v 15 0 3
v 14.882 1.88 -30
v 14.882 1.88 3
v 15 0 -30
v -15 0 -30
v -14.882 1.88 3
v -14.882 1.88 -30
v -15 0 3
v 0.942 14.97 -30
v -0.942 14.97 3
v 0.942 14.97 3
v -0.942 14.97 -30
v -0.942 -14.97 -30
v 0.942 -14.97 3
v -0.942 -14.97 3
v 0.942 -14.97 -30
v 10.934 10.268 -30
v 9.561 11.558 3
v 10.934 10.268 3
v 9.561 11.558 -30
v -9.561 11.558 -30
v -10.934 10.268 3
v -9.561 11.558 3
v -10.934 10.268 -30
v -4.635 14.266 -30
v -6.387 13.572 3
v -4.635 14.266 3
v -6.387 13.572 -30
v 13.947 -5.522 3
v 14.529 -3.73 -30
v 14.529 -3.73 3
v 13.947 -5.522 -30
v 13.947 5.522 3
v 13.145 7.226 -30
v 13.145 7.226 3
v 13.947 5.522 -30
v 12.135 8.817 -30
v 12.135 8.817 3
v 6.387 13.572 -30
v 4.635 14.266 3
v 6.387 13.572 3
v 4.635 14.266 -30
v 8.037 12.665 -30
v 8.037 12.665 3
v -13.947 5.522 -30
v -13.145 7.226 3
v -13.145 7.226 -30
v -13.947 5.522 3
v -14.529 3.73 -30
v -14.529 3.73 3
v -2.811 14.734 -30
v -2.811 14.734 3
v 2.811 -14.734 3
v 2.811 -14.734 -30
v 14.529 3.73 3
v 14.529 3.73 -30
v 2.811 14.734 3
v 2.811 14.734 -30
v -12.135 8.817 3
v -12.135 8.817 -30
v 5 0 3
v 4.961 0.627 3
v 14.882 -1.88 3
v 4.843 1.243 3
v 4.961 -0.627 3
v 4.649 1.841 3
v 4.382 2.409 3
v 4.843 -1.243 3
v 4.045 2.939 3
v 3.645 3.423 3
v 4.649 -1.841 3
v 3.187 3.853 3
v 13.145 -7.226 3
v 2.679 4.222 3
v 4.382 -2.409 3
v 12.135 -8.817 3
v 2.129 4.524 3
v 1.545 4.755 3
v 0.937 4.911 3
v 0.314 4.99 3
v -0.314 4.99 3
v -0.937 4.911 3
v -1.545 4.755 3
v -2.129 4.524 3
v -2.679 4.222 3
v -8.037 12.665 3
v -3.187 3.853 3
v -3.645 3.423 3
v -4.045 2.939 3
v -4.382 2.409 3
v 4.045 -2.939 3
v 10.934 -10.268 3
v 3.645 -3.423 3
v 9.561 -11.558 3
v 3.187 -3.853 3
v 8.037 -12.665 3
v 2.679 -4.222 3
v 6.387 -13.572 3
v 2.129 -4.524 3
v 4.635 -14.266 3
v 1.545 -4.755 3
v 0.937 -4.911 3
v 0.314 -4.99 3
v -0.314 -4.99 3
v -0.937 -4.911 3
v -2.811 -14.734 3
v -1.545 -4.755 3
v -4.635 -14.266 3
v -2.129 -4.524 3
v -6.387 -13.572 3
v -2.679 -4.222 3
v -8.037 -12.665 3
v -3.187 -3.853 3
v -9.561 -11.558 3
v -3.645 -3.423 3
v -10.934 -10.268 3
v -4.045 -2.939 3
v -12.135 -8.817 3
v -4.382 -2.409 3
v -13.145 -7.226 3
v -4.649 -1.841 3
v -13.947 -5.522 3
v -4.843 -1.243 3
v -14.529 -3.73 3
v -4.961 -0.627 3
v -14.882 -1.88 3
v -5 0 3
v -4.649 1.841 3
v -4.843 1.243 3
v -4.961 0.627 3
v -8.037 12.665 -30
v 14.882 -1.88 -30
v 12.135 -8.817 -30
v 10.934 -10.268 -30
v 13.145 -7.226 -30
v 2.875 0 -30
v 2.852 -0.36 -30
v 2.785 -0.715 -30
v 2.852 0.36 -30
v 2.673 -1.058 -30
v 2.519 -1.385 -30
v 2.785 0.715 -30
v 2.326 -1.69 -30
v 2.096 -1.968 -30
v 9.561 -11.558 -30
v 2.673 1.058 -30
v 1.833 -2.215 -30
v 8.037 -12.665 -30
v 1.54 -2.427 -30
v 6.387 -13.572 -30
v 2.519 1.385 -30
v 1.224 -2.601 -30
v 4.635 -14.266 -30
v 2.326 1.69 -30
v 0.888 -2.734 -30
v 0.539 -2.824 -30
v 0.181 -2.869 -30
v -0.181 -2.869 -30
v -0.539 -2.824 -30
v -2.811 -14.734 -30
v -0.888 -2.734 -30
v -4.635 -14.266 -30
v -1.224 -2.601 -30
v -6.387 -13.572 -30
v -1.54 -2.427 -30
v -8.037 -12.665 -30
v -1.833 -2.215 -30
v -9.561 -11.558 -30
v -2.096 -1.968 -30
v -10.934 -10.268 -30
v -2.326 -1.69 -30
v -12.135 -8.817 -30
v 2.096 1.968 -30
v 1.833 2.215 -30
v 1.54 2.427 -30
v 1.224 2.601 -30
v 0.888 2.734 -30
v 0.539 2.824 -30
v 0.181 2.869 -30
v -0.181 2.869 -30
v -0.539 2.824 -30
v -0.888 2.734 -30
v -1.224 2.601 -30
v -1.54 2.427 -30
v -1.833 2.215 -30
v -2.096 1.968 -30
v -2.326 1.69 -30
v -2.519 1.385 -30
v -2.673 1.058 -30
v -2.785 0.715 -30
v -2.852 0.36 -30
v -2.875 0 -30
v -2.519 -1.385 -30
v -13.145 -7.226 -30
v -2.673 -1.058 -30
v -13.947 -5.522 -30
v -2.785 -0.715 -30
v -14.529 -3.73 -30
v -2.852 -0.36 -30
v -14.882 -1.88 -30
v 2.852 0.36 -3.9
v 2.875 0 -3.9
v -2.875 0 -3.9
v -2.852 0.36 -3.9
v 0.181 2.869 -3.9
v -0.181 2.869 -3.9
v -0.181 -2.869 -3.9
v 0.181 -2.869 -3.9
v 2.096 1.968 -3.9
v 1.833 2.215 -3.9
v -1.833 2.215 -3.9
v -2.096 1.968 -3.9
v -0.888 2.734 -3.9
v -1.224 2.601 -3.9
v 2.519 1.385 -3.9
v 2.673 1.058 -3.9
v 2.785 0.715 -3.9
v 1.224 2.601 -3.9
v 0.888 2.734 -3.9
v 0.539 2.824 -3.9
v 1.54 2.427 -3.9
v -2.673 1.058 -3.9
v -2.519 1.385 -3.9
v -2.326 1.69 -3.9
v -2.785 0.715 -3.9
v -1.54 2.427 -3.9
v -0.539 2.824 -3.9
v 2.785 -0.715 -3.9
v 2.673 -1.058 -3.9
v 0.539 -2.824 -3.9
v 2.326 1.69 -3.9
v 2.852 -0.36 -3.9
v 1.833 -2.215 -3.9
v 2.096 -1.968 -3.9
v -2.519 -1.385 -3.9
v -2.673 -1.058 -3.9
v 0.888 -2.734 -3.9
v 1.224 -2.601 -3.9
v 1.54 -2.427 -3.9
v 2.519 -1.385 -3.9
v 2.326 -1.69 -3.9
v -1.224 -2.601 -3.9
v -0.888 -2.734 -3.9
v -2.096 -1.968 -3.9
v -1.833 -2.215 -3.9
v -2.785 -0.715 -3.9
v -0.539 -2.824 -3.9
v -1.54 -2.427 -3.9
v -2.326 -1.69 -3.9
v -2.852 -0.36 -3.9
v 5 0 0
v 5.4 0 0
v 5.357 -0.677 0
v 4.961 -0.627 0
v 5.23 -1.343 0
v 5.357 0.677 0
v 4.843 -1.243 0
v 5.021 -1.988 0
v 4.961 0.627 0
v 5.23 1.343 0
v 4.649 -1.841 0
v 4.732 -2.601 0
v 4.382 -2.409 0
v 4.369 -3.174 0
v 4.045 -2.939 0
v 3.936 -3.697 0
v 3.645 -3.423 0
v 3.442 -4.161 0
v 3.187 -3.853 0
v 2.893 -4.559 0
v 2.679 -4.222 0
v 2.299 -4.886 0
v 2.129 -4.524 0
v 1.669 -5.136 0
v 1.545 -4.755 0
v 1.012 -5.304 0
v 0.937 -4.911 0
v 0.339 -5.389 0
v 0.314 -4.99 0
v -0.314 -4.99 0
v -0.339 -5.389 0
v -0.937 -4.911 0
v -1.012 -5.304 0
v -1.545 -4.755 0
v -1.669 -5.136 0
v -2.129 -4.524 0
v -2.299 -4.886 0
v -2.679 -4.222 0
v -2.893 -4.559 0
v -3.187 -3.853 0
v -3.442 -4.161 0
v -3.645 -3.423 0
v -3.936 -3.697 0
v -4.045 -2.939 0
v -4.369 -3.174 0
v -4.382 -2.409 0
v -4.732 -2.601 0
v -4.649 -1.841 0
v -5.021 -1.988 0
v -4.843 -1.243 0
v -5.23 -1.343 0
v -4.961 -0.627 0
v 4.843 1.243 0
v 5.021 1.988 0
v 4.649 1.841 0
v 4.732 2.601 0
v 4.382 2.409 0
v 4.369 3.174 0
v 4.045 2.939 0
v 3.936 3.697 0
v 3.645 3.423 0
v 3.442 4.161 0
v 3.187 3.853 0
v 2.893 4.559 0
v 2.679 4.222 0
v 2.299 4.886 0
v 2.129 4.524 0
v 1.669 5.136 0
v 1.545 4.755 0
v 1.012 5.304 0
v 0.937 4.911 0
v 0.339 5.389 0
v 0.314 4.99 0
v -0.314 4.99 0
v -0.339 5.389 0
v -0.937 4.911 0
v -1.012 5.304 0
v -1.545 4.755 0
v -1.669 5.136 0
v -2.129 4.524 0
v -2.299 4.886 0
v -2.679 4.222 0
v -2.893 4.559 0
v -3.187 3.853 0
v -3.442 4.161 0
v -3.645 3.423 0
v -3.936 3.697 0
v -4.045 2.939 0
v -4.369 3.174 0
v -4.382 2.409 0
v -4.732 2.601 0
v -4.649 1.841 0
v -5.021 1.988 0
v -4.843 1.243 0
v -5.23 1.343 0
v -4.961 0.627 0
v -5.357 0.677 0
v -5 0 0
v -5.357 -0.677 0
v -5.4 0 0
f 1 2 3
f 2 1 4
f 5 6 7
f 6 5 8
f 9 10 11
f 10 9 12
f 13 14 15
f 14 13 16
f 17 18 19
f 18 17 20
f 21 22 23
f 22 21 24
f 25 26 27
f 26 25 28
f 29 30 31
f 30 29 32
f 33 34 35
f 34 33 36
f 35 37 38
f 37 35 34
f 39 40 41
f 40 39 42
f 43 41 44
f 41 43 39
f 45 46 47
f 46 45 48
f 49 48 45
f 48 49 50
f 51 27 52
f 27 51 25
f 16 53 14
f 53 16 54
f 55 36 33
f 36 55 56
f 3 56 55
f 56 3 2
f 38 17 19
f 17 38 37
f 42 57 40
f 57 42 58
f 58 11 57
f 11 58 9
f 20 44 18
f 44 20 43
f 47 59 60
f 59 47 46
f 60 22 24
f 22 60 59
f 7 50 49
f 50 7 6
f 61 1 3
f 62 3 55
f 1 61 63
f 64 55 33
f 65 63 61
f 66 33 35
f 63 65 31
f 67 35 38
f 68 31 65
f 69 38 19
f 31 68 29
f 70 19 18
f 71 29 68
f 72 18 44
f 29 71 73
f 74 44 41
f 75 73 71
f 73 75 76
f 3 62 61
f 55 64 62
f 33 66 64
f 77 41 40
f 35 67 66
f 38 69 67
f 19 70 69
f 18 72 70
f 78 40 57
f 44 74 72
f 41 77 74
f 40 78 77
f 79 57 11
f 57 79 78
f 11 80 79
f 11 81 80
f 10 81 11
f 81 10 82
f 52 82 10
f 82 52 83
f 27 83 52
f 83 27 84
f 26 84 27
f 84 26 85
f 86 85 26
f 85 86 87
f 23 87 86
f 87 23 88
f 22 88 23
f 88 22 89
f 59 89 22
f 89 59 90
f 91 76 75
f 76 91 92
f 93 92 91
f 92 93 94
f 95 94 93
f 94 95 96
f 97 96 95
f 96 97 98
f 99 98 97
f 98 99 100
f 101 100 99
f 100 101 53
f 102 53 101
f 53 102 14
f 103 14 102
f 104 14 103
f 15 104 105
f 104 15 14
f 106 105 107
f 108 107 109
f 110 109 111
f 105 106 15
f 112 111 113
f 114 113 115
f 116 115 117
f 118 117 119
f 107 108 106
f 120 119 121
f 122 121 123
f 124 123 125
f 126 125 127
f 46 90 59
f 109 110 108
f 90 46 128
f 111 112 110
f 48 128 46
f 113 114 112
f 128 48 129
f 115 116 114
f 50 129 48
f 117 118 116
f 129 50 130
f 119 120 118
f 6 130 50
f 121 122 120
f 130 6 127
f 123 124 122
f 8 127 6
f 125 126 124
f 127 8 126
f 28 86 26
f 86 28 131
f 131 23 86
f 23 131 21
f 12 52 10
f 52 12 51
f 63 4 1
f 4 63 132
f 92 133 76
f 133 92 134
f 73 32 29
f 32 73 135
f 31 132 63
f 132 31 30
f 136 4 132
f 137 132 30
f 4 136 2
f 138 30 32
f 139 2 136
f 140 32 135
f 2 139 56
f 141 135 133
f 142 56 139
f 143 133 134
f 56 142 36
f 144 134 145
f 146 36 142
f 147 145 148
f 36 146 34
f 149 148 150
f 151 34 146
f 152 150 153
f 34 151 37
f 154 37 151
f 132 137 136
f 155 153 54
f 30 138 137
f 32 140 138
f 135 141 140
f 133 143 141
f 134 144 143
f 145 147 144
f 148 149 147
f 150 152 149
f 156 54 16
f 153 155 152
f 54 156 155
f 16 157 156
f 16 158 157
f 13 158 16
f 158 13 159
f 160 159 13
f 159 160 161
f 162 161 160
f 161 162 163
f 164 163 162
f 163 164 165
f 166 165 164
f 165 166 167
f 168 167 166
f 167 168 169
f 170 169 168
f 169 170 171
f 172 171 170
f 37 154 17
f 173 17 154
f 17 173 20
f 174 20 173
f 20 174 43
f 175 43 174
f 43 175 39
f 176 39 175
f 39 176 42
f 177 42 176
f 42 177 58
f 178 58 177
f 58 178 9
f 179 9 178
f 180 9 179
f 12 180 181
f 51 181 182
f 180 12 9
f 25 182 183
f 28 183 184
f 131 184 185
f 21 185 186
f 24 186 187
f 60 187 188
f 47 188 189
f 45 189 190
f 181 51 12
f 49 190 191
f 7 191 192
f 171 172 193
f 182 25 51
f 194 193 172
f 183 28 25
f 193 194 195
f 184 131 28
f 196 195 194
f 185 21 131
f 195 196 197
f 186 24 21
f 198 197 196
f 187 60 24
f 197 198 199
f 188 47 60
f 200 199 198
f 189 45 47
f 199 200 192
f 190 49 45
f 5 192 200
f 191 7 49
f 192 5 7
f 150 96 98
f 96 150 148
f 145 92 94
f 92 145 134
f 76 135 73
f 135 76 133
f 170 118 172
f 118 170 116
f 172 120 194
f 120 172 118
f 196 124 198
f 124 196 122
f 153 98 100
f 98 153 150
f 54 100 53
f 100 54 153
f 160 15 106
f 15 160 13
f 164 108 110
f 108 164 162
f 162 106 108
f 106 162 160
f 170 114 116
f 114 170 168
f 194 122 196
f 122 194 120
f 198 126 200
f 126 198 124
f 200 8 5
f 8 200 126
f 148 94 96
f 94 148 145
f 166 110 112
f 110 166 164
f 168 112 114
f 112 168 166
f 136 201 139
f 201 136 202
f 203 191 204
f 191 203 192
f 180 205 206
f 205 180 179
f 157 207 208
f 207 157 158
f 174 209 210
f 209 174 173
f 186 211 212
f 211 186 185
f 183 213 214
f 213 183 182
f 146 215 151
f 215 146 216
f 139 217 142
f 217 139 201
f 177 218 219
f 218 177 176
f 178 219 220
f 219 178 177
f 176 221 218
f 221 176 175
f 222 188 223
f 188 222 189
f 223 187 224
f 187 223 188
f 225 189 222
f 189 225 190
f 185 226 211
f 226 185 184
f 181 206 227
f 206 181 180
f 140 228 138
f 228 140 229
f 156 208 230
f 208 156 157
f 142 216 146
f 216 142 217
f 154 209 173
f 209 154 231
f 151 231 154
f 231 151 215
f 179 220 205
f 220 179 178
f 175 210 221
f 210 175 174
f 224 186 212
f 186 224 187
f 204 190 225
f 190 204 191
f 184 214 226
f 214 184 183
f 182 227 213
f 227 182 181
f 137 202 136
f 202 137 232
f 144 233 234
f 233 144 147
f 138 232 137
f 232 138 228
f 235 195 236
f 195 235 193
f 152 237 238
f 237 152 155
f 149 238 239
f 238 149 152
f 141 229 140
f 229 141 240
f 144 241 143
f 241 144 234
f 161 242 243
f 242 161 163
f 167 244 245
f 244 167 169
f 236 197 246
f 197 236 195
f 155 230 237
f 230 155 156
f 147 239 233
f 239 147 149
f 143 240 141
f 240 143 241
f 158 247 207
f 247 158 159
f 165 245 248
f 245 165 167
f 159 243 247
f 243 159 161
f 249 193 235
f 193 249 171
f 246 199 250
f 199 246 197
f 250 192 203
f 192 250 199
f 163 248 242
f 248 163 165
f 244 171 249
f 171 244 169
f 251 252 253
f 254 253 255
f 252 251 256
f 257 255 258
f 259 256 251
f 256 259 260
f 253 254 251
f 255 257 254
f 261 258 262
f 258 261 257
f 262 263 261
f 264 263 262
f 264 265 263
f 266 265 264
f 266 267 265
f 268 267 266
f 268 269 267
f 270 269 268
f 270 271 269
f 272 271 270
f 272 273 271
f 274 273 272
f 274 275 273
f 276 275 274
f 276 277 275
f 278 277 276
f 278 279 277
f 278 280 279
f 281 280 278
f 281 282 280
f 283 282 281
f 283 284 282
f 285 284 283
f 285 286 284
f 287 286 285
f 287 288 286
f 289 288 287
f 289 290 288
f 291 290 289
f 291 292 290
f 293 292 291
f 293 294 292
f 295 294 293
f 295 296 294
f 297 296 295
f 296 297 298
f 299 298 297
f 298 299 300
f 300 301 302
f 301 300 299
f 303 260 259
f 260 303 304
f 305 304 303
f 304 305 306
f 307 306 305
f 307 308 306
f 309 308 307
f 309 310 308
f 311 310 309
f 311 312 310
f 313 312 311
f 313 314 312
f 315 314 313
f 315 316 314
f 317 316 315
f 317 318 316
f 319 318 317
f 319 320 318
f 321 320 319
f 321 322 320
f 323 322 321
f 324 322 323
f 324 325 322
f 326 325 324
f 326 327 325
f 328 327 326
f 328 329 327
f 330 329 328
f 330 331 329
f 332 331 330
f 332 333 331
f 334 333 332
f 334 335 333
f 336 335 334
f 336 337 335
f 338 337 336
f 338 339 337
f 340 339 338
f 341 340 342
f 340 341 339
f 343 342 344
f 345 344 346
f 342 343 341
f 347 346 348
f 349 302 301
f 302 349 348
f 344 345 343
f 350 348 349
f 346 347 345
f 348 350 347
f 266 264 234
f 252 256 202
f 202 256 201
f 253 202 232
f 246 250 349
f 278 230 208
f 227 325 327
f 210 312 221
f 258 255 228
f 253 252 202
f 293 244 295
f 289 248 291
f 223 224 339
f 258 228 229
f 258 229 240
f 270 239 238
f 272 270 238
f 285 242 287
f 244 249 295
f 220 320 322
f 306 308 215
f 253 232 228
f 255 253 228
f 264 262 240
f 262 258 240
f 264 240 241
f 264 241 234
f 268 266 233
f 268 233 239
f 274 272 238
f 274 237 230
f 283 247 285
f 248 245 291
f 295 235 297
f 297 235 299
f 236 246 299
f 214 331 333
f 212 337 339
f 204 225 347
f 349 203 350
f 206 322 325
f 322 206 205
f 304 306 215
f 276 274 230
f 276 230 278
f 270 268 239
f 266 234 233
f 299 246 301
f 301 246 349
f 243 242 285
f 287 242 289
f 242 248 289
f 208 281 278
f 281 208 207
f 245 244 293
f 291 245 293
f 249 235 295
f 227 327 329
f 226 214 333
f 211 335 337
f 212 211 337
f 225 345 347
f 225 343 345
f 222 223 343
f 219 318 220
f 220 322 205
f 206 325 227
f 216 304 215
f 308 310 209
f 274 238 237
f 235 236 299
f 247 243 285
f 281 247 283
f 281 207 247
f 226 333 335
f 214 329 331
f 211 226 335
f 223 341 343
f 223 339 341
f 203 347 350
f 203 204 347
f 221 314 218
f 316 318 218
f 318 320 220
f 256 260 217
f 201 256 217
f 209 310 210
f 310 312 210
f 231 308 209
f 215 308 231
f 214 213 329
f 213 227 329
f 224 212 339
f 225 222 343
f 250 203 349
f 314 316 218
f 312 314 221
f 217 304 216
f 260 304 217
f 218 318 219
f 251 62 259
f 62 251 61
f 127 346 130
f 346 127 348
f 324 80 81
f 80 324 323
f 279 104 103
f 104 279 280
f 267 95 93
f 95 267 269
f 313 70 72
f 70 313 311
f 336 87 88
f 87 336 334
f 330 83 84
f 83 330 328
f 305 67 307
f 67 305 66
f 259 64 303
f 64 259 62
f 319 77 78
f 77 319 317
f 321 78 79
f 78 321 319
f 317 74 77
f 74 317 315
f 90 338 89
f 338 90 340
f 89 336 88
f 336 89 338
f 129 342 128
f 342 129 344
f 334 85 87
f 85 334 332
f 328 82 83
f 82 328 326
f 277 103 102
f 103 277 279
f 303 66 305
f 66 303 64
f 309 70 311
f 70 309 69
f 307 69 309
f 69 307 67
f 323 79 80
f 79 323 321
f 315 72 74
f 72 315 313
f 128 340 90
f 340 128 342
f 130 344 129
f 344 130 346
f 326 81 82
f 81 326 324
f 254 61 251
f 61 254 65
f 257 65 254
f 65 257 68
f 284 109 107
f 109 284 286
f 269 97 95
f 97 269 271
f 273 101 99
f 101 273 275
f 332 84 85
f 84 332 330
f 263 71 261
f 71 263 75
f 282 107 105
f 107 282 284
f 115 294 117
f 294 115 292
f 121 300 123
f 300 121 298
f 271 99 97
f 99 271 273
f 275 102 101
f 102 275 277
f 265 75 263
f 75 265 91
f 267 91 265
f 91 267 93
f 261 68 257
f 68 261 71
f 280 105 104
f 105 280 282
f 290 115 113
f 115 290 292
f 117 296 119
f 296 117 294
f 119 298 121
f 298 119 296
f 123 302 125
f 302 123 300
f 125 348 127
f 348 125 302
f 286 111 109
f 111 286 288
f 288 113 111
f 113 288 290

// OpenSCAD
$fn = 50;


difference() {
	union() {
		translate(v = [0, 0, -30.0000000000]) {
			cylinder(h = 33, r = 15.0000000000);
		}
		#translate(v = [0, 0, -33.0000000000]) {
			cylinder(h = 33, r = 2.8750000000);
		}
	}
	union() {
		translate(v = [0, 0, 0]) {
			rotate(a = [0, 0, 0]) {
				difference() {
					union() {
						translate(v = [0, 0, -33.0000000000]) {
							cylinder(h = 33, r = 2.6000000000);
						}
						translate(v = [0, 0, -3.9000000000]) {
							cylinder(h = 3.9000000000, r1 = 2.8750000000, r2 = 5.4000000000);
						}
						translate(v = [0, 0, -33.0000000000]) {
							cylinder(h = 33, r = 2.8750000000);
						}
						translate(v = [0, 0, -33.0000000000]) {
							cylinder(h = 33, r = 2.6000000000);
						}
					}
					union();
				}
			}
		}
		#cylinder(h = 3, r = 5.0000000000);
	}
}
